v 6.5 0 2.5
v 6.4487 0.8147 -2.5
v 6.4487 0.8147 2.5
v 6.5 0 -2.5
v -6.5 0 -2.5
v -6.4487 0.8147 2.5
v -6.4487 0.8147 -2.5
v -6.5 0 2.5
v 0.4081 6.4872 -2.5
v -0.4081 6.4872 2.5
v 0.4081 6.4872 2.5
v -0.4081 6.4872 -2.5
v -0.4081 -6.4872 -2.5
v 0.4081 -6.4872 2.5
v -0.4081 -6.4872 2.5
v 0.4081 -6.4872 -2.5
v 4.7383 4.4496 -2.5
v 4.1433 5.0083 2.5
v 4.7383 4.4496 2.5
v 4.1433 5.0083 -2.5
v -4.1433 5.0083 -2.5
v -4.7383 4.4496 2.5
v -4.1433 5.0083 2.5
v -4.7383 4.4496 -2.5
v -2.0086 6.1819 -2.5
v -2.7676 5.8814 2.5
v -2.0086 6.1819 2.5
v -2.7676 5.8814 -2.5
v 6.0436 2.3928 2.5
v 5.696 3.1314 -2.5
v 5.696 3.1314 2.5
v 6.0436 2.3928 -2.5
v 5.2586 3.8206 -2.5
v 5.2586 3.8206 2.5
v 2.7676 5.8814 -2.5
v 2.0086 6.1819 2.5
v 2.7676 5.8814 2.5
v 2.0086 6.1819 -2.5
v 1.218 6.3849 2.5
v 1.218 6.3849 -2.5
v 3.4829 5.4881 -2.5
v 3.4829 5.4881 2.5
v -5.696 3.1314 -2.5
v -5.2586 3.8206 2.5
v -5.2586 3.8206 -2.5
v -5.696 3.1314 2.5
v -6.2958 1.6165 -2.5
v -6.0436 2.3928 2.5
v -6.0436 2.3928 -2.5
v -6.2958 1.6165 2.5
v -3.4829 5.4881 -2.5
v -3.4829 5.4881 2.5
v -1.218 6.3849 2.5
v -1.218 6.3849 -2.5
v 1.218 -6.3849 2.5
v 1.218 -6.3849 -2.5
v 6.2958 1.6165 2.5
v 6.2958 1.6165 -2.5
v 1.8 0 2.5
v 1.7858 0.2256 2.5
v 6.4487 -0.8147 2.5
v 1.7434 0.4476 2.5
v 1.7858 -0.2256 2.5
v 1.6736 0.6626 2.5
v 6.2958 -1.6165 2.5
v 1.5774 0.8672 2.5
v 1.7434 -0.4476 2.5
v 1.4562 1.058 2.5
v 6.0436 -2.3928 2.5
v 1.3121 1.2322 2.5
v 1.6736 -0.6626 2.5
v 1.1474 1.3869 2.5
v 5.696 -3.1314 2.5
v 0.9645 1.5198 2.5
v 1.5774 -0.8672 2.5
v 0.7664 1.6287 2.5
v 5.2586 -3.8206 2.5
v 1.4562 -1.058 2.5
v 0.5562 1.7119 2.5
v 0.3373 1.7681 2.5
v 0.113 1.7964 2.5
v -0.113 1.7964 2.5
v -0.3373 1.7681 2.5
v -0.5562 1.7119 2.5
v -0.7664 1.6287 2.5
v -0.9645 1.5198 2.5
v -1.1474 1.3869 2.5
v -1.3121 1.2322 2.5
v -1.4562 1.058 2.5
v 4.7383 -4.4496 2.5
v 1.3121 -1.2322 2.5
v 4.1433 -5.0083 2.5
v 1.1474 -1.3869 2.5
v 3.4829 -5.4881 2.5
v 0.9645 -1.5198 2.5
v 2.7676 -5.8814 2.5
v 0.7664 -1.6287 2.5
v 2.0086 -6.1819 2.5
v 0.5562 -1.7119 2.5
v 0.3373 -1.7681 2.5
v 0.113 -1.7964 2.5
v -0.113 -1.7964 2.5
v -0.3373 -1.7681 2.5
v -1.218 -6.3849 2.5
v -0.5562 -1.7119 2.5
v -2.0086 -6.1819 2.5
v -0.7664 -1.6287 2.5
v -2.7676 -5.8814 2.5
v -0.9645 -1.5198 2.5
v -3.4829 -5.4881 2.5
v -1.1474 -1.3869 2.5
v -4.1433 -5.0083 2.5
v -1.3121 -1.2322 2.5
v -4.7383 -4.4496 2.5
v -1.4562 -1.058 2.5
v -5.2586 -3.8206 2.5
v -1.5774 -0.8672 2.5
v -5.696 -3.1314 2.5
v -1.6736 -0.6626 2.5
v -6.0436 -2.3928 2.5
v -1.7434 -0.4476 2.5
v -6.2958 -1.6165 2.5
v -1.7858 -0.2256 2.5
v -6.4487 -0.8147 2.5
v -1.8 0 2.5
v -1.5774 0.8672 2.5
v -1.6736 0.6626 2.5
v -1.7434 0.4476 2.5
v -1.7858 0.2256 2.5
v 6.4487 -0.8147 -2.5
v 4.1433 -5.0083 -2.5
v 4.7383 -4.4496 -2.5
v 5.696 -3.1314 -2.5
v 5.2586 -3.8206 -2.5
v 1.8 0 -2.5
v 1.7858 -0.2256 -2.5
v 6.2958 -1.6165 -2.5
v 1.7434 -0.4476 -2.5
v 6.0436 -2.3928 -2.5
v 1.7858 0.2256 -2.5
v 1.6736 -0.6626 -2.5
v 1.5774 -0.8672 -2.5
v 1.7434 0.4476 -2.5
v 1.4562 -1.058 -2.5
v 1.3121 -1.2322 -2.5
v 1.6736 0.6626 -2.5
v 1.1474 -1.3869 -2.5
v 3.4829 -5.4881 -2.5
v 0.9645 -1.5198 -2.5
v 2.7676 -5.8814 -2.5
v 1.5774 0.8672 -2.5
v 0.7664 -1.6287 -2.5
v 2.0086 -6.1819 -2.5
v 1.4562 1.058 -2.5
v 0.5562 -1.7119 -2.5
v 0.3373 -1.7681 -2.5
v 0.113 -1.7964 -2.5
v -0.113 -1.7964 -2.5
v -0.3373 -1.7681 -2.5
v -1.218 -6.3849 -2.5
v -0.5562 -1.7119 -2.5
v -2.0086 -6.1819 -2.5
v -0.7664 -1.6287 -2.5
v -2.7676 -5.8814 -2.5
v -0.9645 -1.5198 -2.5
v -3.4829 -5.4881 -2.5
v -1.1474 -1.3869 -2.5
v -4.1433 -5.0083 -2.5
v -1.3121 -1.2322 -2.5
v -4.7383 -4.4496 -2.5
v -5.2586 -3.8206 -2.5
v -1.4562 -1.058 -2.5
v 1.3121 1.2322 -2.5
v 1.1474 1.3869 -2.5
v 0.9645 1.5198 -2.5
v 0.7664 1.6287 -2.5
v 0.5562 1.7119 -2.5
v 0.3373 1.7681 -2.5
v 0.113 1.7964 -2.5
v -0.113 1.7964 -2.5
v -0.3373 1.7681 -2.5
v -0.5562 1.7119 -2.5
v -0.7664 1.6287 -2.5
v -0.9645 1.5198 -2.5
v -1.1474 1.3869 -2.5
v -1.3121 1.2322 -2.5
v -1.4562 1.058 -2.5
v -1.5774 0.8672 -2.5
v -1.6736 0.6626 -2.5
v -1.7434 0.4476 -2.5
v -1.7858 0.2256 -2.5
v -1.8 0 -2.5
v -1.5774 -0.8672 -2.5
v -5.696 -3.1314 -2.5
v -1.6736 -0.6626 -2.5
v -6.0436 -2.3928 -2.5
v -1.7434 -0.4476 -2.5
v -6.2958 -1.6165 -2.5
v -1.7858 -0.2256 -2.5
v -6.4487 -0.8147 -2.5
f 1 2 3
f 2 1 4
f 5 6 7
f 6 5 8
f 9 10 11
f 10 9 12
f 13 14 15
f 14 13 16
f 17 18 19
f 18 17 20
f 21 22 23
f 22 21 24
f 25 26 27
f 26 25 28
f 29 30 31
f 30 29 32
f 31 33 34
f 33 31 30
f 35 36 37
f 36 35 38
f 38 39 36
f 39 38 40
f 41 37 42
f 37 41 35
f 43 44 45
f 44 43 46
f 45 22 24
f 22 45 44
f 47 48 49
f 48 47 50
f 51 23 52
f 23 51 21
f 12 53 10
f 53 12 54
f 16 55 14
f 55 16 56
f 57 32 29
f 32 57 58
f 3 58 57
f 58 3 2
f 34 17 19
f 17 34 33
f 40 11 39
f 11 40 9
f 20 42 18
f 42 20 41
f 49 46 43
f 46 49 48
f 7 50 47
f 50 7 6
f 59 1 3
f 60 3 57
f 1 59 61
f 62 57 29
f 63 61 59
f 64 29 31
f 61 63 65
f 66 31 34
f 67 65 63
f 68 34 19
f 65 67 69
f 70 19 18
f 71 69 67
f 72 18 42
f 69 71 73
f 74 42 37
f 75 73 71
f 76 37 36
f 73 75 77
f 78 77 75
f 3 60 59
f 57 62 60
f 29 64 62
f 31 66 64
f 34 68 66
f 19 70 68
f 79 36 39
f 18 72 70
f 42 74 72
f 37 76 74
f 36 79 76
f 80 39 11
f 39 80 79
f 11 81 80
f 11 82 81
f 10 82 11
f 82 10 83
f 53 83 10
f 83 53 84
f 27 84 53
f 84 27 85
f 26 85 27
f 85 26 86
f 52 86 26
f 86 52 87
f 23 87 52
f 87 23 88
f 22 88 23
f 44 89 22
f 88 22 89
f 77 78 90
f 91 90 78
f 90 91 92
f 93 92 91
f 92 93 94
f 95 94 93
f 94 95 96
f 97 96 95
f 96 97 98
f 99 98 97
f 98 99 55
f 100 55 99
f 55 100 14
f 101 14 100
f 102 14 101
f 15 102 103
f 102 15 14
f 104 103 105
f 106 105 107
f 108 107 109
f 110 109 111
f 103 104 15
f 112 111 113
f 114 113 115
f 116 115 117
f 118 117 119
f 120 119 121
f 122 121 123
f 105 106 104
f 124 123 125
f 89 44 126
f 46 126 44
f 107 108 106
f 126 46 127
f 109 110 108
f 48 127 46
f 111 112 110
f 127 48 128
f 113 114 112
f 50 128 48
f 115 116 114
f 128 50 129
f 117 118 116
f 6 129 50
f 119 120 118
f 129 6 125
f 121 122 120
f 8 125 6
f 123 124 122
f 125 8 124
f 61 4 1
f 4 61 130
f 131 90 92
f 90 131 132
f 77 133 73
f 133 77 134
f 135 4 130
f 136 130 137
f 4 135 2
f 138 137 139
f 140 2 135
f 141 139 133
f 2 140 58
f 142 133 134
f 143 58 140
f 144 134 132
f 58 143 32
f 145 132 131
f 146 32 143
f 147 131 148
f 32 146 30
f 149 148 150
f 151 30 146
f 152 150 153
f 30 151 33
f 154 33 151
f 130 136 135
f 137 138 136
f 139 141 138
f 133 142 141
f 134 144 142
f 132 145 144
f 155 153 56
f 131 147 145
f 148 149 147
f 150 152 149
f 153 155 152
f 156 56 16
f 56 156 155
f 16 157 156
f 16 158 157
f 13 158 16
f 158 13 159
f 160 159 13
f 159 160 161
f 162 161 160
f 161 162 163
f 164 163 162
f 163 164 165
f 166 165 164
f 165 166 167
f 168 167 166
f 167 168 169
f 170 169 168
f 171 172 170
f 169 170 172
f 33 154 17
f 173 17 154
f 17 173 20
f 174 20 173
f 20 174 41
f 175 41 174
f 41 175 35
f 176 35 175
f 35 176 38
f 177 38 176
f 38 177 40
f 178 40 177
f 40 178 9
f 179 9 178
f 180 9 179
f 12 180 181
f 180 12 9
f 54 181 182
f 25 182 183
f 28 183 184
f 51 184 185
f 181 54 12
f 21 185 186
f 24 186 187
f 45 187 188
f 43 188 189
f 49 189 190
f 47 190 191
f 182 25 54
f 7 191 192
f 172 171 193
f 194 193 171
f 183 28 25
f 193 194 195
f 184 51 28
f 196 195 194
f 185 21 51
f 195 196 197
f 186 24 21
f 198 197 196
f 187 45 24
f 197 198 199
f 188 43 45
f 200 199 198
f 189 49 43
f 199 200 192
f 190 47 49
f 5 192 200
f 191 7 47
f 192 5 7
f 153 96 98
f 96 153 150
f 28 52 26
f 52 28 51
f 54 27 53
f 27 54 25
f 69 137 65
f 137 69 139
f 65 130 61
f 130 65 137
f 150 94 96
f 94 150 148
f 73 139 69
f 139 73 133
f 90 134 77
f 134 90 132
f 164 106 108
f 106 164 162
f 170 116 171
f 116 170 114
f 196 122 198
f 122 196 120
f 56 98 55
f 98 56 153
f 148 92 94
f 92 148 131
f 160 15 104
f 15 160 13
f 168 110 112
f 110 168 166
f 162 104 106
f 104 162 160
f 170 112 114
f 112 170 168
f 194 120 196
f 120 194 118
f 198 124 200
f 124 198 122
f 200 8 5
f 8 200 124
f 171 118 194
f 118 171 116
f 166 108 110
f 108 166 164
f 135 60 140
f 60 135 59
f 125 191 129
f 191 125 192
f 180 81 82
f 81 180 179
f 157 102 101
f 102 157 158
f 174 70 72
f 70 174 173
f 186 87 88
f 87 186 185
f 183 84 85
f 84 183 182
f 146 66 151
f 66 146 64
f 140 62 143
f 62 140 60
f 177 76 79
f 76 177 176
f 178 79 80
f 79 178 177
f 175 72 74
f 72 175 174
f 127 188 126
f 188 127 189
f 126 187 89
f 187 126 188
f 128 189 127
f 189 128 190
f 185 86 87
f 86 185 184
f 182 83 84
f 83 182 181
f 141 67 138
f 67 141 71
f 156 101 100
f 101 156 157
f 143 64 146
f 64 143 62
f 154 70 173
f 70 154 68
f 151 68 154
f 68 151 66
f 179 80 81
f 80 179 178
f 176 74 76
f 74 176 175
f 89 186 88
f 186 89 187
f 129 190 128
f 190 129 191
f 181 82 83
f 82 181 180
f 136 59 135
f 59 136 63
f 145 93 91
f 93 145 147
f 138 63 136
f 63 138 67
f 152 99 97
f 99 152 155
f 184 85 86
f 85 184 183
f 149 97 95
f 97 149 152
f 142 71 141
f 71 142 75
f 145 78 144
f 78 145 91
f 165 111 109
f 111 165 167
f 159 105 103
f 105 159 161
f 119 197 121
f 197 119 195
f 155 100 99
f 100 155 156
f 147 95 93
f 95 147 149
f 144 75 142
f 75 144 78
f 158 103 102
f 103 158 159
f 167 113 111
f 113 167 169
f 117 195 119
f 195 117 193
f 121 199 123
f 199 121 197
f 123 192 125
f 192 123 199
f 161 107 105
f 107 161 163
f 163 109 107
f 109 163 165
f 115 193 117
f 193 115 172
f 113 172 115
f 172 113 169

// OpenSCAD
$fn = 50;


difference() {
	union() {
		translate(v = [0, 0, -2.5000000000]) {
			cylinder(h = 5, r = 6.5000000000);
		}
	}
	union() {
		translate(v = [0, 0, -100.0000000000]) {
			cylinder(h = 200, r = 1.8000000000);
		}
	}
}
